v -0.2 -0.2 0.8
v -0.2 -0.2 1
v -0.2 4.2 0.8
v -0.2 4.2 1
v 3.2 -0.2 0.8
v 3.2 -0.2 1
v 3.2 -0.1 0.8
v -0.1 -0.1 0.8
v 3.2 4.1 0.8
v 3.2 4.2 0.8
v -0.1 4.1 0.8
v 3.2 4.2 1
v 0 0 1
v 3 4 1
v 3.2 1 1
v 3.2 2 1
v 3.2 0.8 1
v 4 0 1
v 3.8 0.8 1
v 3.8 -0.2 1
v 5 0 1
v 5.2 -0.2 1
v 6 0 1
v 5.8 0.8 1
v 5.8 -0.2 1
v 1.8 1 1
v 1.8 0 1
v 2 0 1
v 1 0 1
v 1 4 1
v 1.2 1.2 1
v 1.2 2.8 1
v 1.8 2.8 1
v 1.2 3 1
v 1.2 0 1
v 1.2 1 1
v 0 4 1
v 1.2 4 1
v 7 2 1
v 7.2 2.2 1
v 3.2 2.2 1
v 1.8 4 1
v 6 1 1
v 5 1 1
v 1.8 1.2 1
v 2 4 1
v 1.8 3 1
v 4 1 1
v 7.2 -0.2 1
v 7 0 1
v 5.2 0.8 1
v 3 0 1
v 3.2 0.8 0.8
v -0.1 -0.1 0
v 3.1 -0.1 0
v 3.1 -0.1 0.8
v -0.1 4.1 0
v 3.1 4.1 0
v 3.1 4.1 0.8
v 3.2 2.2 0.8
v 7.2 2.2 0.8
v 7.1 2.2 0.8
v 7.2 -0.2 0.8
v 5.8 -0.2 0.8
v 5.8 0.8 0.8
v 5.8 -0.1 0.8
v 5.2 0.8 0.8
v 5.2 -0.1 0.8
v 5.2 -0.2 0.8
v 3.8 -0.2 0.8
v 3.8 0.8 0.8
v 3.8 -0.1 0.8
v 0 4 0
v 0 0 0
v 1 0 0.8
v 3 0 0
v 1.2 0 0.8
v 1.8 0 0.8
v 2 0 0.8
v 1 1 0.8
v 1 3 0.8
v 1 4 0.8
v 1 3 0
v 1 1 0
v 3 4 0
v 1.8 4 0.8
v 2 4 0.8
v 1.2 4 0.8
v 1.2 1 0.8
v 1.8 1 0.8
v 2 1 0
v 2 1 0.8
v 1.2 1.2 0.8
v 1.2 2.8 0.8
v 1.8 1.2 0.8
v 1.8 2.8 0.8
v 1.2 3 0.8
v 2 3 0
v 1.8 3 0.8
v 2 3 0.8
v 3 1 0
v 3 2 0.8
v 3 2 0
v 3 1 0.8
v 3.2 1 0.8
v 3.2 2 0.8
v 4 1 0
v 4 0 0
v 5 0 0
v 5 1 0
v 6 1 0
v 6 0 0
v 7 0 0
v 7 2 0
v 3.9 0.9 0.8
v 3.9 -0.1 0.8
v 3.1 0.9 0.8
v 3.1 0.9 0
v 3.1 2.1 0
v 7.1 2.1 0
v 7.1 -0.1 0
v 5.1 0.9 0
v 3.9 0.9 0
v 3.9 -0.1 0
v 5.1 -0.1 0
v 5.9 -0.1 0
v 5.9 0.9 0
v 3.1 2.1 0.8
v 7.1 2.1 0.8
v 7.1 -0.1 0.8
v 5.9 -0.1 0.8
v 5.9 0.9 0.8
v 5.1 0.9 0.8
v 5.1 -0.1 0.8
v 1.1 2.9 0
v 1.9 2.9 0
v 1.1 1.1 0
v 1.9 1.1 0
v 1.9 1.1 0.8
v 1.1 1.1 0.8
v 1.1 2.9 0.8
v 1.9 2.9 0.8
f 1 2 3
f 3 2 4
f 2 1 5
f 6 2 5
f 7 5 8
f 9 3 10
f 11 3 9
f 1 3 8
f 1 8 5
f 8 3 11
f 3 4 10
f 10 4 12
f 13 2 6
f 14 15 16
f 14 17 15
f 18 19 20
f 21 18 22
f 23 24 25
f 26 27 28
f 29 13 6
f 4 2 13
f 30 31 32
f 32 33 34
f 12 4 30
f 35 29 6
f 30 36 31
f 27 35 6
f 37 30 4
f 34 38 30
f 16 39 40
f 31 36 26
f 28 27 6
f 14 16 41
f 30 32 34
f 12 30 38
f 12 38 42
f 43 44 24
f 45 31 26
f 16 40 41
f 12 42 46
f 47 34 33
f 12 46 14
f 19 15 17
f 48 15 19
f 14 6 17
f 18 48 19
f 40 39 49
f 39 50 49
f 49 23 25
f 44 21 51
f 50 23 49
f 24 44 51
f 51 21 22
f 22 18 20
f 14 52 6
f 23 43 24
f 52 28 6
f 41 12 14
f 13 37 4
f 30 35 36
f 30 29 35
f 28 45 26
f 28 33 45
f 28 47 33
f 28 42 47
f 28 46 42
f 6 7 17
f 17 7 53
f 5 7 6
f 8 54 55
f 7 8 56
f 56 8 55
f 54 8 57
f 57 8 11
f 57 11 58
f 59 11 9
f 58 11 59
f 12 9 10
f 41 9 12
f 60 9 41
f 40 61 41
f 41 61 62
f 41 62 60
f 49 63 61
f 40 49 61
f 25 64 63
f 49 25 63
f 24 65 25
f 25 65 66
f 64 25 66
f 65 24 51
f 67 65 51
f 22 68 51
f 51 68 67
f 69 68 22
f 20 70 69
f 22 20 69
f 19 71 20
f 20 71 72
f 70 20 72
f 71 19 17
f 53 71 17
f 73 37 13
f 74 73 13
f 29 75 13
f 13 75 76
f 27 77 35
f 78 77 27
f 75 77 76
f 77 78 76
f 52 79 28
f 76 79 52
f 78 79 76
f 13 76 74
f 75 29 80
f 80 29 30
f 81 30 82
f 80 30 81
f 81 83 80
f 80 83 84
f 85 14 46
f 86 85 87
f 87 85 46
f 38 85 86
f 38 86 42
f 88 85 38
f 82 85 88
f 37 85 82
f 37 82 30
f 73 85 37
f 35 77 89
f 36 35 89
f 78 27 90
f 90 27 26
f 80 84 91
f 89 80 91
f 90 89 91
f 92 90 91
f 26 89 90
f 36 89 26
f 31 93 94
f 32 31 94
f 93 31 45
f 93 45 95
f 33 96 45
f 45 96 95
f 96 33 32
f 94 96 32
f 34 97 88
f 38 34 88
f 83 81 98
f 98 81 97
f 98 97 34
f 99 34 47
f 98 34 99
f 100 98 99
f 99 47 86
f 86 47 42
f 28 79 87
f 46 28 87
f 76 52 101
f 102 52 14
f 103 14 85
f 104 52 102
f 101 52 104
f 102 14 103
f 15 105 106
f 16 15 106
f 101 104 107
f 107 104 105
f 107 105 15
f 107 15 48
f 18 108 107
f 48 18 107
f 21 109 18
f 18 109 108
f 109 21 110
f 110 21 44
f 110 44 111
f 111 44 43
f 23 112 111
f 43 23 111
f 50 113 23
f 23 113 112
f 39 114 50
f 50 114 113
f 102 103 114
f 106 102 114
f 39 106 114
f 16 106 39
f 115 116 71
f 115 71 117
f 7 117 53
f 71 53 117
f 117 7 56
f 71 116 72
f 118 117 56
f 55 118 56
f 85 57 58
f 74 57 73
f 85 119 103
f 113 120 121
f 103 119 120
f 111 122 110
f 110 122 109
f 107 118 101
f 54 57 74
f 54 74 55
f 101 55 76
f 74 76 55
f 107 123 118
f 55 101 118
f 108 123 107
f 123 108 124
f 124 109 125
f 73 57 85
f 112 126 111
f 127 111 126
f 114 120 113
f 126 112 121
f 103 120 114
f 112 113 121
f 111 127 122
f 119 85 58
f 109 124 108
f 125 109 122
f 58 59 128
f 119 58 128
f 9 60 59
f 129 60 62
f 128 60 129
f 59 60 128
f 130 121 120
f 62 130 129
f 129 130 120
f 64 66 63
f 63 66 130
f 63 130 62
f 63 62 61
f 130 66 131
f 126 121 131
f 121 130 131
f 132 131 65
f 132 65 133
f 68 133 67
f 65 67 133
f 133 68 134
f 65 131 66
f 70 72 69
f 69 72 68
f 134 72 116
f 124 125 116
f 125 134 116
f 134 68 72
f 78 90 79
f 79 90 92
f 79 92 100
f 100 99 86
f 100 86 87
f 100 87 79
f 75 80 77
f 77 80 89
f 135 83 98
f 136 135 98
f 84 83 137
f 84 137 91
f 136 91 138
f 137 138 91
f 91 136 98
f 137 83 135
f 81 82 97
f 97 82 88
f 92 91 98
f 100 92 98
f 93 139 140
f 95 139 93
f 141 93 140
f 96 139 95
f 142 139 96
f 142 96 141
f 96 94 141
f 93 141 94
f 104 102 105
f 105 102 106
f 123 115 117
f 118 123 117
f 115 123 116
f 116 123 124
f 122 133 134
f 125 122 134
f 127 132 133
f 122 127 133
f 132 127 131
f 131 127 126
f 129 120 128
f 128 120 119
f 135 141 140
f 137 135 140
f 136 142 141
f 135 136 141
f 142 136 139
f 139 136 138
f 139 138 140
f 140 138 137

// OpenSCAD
union() {
	// stablizers
	translate([1, -0.2, 0.8]) cube([0.2, 4.4, 0.2]);
	translate([1.8, -0.2, 0.8]) cube([0.2, 4.4, 0.2]);
	translate([3, -0.2, 0.8]) cube([0.2, 4.4, 0.2]);

	difference() {
		// base cube
		union() {
			translate([-0.1, -0.1, 0]) cube([7.2, 4.2, 1]);
			translate([-0.2, -0.2, 0.8]) cube([7.4, 4.4, 0.2]);
		}

		// key
		difference() {
			translate([0, 0, -0.5])cube([7, 4, 2]);

			translate([1, 1, -1]) cube([1, 2, 3]);
			translate([3, 2, -1]) cube([5, 3, 3]);
			translate([3, 0, -1]) cube([1, 1, 3]);
			translate([5, 0, -1]) cube([1, 1, 3]);
		}

		// inner part
		translate([1.2, 1.2, -1]) cube([0.6, 1.6, 3]);
		translate([1.1, 1.1, -2.2]) cube([0.8, 1.8, 3]);

		// top right part
		translate([3.2, 2.2, -1]) cube([5, 3, 3]);
		translate([3.1, 2.1, -2.2]) cube([5, 3, 3]);

		// key teeth
		translate([3.2, -0.5, -1]) cube([0.6, 1.3, 3]);
		translate([5.2, -0.5, -1]) cube([0.6, 1.3, 3]); 
		translate([3.1, -0.4, -2.2]) cube([0.8, 1.3, 3]);
		translate([5.1, -0.4, -2.2]) cube([0.8, 1.3, 3]); 
	}      
}
